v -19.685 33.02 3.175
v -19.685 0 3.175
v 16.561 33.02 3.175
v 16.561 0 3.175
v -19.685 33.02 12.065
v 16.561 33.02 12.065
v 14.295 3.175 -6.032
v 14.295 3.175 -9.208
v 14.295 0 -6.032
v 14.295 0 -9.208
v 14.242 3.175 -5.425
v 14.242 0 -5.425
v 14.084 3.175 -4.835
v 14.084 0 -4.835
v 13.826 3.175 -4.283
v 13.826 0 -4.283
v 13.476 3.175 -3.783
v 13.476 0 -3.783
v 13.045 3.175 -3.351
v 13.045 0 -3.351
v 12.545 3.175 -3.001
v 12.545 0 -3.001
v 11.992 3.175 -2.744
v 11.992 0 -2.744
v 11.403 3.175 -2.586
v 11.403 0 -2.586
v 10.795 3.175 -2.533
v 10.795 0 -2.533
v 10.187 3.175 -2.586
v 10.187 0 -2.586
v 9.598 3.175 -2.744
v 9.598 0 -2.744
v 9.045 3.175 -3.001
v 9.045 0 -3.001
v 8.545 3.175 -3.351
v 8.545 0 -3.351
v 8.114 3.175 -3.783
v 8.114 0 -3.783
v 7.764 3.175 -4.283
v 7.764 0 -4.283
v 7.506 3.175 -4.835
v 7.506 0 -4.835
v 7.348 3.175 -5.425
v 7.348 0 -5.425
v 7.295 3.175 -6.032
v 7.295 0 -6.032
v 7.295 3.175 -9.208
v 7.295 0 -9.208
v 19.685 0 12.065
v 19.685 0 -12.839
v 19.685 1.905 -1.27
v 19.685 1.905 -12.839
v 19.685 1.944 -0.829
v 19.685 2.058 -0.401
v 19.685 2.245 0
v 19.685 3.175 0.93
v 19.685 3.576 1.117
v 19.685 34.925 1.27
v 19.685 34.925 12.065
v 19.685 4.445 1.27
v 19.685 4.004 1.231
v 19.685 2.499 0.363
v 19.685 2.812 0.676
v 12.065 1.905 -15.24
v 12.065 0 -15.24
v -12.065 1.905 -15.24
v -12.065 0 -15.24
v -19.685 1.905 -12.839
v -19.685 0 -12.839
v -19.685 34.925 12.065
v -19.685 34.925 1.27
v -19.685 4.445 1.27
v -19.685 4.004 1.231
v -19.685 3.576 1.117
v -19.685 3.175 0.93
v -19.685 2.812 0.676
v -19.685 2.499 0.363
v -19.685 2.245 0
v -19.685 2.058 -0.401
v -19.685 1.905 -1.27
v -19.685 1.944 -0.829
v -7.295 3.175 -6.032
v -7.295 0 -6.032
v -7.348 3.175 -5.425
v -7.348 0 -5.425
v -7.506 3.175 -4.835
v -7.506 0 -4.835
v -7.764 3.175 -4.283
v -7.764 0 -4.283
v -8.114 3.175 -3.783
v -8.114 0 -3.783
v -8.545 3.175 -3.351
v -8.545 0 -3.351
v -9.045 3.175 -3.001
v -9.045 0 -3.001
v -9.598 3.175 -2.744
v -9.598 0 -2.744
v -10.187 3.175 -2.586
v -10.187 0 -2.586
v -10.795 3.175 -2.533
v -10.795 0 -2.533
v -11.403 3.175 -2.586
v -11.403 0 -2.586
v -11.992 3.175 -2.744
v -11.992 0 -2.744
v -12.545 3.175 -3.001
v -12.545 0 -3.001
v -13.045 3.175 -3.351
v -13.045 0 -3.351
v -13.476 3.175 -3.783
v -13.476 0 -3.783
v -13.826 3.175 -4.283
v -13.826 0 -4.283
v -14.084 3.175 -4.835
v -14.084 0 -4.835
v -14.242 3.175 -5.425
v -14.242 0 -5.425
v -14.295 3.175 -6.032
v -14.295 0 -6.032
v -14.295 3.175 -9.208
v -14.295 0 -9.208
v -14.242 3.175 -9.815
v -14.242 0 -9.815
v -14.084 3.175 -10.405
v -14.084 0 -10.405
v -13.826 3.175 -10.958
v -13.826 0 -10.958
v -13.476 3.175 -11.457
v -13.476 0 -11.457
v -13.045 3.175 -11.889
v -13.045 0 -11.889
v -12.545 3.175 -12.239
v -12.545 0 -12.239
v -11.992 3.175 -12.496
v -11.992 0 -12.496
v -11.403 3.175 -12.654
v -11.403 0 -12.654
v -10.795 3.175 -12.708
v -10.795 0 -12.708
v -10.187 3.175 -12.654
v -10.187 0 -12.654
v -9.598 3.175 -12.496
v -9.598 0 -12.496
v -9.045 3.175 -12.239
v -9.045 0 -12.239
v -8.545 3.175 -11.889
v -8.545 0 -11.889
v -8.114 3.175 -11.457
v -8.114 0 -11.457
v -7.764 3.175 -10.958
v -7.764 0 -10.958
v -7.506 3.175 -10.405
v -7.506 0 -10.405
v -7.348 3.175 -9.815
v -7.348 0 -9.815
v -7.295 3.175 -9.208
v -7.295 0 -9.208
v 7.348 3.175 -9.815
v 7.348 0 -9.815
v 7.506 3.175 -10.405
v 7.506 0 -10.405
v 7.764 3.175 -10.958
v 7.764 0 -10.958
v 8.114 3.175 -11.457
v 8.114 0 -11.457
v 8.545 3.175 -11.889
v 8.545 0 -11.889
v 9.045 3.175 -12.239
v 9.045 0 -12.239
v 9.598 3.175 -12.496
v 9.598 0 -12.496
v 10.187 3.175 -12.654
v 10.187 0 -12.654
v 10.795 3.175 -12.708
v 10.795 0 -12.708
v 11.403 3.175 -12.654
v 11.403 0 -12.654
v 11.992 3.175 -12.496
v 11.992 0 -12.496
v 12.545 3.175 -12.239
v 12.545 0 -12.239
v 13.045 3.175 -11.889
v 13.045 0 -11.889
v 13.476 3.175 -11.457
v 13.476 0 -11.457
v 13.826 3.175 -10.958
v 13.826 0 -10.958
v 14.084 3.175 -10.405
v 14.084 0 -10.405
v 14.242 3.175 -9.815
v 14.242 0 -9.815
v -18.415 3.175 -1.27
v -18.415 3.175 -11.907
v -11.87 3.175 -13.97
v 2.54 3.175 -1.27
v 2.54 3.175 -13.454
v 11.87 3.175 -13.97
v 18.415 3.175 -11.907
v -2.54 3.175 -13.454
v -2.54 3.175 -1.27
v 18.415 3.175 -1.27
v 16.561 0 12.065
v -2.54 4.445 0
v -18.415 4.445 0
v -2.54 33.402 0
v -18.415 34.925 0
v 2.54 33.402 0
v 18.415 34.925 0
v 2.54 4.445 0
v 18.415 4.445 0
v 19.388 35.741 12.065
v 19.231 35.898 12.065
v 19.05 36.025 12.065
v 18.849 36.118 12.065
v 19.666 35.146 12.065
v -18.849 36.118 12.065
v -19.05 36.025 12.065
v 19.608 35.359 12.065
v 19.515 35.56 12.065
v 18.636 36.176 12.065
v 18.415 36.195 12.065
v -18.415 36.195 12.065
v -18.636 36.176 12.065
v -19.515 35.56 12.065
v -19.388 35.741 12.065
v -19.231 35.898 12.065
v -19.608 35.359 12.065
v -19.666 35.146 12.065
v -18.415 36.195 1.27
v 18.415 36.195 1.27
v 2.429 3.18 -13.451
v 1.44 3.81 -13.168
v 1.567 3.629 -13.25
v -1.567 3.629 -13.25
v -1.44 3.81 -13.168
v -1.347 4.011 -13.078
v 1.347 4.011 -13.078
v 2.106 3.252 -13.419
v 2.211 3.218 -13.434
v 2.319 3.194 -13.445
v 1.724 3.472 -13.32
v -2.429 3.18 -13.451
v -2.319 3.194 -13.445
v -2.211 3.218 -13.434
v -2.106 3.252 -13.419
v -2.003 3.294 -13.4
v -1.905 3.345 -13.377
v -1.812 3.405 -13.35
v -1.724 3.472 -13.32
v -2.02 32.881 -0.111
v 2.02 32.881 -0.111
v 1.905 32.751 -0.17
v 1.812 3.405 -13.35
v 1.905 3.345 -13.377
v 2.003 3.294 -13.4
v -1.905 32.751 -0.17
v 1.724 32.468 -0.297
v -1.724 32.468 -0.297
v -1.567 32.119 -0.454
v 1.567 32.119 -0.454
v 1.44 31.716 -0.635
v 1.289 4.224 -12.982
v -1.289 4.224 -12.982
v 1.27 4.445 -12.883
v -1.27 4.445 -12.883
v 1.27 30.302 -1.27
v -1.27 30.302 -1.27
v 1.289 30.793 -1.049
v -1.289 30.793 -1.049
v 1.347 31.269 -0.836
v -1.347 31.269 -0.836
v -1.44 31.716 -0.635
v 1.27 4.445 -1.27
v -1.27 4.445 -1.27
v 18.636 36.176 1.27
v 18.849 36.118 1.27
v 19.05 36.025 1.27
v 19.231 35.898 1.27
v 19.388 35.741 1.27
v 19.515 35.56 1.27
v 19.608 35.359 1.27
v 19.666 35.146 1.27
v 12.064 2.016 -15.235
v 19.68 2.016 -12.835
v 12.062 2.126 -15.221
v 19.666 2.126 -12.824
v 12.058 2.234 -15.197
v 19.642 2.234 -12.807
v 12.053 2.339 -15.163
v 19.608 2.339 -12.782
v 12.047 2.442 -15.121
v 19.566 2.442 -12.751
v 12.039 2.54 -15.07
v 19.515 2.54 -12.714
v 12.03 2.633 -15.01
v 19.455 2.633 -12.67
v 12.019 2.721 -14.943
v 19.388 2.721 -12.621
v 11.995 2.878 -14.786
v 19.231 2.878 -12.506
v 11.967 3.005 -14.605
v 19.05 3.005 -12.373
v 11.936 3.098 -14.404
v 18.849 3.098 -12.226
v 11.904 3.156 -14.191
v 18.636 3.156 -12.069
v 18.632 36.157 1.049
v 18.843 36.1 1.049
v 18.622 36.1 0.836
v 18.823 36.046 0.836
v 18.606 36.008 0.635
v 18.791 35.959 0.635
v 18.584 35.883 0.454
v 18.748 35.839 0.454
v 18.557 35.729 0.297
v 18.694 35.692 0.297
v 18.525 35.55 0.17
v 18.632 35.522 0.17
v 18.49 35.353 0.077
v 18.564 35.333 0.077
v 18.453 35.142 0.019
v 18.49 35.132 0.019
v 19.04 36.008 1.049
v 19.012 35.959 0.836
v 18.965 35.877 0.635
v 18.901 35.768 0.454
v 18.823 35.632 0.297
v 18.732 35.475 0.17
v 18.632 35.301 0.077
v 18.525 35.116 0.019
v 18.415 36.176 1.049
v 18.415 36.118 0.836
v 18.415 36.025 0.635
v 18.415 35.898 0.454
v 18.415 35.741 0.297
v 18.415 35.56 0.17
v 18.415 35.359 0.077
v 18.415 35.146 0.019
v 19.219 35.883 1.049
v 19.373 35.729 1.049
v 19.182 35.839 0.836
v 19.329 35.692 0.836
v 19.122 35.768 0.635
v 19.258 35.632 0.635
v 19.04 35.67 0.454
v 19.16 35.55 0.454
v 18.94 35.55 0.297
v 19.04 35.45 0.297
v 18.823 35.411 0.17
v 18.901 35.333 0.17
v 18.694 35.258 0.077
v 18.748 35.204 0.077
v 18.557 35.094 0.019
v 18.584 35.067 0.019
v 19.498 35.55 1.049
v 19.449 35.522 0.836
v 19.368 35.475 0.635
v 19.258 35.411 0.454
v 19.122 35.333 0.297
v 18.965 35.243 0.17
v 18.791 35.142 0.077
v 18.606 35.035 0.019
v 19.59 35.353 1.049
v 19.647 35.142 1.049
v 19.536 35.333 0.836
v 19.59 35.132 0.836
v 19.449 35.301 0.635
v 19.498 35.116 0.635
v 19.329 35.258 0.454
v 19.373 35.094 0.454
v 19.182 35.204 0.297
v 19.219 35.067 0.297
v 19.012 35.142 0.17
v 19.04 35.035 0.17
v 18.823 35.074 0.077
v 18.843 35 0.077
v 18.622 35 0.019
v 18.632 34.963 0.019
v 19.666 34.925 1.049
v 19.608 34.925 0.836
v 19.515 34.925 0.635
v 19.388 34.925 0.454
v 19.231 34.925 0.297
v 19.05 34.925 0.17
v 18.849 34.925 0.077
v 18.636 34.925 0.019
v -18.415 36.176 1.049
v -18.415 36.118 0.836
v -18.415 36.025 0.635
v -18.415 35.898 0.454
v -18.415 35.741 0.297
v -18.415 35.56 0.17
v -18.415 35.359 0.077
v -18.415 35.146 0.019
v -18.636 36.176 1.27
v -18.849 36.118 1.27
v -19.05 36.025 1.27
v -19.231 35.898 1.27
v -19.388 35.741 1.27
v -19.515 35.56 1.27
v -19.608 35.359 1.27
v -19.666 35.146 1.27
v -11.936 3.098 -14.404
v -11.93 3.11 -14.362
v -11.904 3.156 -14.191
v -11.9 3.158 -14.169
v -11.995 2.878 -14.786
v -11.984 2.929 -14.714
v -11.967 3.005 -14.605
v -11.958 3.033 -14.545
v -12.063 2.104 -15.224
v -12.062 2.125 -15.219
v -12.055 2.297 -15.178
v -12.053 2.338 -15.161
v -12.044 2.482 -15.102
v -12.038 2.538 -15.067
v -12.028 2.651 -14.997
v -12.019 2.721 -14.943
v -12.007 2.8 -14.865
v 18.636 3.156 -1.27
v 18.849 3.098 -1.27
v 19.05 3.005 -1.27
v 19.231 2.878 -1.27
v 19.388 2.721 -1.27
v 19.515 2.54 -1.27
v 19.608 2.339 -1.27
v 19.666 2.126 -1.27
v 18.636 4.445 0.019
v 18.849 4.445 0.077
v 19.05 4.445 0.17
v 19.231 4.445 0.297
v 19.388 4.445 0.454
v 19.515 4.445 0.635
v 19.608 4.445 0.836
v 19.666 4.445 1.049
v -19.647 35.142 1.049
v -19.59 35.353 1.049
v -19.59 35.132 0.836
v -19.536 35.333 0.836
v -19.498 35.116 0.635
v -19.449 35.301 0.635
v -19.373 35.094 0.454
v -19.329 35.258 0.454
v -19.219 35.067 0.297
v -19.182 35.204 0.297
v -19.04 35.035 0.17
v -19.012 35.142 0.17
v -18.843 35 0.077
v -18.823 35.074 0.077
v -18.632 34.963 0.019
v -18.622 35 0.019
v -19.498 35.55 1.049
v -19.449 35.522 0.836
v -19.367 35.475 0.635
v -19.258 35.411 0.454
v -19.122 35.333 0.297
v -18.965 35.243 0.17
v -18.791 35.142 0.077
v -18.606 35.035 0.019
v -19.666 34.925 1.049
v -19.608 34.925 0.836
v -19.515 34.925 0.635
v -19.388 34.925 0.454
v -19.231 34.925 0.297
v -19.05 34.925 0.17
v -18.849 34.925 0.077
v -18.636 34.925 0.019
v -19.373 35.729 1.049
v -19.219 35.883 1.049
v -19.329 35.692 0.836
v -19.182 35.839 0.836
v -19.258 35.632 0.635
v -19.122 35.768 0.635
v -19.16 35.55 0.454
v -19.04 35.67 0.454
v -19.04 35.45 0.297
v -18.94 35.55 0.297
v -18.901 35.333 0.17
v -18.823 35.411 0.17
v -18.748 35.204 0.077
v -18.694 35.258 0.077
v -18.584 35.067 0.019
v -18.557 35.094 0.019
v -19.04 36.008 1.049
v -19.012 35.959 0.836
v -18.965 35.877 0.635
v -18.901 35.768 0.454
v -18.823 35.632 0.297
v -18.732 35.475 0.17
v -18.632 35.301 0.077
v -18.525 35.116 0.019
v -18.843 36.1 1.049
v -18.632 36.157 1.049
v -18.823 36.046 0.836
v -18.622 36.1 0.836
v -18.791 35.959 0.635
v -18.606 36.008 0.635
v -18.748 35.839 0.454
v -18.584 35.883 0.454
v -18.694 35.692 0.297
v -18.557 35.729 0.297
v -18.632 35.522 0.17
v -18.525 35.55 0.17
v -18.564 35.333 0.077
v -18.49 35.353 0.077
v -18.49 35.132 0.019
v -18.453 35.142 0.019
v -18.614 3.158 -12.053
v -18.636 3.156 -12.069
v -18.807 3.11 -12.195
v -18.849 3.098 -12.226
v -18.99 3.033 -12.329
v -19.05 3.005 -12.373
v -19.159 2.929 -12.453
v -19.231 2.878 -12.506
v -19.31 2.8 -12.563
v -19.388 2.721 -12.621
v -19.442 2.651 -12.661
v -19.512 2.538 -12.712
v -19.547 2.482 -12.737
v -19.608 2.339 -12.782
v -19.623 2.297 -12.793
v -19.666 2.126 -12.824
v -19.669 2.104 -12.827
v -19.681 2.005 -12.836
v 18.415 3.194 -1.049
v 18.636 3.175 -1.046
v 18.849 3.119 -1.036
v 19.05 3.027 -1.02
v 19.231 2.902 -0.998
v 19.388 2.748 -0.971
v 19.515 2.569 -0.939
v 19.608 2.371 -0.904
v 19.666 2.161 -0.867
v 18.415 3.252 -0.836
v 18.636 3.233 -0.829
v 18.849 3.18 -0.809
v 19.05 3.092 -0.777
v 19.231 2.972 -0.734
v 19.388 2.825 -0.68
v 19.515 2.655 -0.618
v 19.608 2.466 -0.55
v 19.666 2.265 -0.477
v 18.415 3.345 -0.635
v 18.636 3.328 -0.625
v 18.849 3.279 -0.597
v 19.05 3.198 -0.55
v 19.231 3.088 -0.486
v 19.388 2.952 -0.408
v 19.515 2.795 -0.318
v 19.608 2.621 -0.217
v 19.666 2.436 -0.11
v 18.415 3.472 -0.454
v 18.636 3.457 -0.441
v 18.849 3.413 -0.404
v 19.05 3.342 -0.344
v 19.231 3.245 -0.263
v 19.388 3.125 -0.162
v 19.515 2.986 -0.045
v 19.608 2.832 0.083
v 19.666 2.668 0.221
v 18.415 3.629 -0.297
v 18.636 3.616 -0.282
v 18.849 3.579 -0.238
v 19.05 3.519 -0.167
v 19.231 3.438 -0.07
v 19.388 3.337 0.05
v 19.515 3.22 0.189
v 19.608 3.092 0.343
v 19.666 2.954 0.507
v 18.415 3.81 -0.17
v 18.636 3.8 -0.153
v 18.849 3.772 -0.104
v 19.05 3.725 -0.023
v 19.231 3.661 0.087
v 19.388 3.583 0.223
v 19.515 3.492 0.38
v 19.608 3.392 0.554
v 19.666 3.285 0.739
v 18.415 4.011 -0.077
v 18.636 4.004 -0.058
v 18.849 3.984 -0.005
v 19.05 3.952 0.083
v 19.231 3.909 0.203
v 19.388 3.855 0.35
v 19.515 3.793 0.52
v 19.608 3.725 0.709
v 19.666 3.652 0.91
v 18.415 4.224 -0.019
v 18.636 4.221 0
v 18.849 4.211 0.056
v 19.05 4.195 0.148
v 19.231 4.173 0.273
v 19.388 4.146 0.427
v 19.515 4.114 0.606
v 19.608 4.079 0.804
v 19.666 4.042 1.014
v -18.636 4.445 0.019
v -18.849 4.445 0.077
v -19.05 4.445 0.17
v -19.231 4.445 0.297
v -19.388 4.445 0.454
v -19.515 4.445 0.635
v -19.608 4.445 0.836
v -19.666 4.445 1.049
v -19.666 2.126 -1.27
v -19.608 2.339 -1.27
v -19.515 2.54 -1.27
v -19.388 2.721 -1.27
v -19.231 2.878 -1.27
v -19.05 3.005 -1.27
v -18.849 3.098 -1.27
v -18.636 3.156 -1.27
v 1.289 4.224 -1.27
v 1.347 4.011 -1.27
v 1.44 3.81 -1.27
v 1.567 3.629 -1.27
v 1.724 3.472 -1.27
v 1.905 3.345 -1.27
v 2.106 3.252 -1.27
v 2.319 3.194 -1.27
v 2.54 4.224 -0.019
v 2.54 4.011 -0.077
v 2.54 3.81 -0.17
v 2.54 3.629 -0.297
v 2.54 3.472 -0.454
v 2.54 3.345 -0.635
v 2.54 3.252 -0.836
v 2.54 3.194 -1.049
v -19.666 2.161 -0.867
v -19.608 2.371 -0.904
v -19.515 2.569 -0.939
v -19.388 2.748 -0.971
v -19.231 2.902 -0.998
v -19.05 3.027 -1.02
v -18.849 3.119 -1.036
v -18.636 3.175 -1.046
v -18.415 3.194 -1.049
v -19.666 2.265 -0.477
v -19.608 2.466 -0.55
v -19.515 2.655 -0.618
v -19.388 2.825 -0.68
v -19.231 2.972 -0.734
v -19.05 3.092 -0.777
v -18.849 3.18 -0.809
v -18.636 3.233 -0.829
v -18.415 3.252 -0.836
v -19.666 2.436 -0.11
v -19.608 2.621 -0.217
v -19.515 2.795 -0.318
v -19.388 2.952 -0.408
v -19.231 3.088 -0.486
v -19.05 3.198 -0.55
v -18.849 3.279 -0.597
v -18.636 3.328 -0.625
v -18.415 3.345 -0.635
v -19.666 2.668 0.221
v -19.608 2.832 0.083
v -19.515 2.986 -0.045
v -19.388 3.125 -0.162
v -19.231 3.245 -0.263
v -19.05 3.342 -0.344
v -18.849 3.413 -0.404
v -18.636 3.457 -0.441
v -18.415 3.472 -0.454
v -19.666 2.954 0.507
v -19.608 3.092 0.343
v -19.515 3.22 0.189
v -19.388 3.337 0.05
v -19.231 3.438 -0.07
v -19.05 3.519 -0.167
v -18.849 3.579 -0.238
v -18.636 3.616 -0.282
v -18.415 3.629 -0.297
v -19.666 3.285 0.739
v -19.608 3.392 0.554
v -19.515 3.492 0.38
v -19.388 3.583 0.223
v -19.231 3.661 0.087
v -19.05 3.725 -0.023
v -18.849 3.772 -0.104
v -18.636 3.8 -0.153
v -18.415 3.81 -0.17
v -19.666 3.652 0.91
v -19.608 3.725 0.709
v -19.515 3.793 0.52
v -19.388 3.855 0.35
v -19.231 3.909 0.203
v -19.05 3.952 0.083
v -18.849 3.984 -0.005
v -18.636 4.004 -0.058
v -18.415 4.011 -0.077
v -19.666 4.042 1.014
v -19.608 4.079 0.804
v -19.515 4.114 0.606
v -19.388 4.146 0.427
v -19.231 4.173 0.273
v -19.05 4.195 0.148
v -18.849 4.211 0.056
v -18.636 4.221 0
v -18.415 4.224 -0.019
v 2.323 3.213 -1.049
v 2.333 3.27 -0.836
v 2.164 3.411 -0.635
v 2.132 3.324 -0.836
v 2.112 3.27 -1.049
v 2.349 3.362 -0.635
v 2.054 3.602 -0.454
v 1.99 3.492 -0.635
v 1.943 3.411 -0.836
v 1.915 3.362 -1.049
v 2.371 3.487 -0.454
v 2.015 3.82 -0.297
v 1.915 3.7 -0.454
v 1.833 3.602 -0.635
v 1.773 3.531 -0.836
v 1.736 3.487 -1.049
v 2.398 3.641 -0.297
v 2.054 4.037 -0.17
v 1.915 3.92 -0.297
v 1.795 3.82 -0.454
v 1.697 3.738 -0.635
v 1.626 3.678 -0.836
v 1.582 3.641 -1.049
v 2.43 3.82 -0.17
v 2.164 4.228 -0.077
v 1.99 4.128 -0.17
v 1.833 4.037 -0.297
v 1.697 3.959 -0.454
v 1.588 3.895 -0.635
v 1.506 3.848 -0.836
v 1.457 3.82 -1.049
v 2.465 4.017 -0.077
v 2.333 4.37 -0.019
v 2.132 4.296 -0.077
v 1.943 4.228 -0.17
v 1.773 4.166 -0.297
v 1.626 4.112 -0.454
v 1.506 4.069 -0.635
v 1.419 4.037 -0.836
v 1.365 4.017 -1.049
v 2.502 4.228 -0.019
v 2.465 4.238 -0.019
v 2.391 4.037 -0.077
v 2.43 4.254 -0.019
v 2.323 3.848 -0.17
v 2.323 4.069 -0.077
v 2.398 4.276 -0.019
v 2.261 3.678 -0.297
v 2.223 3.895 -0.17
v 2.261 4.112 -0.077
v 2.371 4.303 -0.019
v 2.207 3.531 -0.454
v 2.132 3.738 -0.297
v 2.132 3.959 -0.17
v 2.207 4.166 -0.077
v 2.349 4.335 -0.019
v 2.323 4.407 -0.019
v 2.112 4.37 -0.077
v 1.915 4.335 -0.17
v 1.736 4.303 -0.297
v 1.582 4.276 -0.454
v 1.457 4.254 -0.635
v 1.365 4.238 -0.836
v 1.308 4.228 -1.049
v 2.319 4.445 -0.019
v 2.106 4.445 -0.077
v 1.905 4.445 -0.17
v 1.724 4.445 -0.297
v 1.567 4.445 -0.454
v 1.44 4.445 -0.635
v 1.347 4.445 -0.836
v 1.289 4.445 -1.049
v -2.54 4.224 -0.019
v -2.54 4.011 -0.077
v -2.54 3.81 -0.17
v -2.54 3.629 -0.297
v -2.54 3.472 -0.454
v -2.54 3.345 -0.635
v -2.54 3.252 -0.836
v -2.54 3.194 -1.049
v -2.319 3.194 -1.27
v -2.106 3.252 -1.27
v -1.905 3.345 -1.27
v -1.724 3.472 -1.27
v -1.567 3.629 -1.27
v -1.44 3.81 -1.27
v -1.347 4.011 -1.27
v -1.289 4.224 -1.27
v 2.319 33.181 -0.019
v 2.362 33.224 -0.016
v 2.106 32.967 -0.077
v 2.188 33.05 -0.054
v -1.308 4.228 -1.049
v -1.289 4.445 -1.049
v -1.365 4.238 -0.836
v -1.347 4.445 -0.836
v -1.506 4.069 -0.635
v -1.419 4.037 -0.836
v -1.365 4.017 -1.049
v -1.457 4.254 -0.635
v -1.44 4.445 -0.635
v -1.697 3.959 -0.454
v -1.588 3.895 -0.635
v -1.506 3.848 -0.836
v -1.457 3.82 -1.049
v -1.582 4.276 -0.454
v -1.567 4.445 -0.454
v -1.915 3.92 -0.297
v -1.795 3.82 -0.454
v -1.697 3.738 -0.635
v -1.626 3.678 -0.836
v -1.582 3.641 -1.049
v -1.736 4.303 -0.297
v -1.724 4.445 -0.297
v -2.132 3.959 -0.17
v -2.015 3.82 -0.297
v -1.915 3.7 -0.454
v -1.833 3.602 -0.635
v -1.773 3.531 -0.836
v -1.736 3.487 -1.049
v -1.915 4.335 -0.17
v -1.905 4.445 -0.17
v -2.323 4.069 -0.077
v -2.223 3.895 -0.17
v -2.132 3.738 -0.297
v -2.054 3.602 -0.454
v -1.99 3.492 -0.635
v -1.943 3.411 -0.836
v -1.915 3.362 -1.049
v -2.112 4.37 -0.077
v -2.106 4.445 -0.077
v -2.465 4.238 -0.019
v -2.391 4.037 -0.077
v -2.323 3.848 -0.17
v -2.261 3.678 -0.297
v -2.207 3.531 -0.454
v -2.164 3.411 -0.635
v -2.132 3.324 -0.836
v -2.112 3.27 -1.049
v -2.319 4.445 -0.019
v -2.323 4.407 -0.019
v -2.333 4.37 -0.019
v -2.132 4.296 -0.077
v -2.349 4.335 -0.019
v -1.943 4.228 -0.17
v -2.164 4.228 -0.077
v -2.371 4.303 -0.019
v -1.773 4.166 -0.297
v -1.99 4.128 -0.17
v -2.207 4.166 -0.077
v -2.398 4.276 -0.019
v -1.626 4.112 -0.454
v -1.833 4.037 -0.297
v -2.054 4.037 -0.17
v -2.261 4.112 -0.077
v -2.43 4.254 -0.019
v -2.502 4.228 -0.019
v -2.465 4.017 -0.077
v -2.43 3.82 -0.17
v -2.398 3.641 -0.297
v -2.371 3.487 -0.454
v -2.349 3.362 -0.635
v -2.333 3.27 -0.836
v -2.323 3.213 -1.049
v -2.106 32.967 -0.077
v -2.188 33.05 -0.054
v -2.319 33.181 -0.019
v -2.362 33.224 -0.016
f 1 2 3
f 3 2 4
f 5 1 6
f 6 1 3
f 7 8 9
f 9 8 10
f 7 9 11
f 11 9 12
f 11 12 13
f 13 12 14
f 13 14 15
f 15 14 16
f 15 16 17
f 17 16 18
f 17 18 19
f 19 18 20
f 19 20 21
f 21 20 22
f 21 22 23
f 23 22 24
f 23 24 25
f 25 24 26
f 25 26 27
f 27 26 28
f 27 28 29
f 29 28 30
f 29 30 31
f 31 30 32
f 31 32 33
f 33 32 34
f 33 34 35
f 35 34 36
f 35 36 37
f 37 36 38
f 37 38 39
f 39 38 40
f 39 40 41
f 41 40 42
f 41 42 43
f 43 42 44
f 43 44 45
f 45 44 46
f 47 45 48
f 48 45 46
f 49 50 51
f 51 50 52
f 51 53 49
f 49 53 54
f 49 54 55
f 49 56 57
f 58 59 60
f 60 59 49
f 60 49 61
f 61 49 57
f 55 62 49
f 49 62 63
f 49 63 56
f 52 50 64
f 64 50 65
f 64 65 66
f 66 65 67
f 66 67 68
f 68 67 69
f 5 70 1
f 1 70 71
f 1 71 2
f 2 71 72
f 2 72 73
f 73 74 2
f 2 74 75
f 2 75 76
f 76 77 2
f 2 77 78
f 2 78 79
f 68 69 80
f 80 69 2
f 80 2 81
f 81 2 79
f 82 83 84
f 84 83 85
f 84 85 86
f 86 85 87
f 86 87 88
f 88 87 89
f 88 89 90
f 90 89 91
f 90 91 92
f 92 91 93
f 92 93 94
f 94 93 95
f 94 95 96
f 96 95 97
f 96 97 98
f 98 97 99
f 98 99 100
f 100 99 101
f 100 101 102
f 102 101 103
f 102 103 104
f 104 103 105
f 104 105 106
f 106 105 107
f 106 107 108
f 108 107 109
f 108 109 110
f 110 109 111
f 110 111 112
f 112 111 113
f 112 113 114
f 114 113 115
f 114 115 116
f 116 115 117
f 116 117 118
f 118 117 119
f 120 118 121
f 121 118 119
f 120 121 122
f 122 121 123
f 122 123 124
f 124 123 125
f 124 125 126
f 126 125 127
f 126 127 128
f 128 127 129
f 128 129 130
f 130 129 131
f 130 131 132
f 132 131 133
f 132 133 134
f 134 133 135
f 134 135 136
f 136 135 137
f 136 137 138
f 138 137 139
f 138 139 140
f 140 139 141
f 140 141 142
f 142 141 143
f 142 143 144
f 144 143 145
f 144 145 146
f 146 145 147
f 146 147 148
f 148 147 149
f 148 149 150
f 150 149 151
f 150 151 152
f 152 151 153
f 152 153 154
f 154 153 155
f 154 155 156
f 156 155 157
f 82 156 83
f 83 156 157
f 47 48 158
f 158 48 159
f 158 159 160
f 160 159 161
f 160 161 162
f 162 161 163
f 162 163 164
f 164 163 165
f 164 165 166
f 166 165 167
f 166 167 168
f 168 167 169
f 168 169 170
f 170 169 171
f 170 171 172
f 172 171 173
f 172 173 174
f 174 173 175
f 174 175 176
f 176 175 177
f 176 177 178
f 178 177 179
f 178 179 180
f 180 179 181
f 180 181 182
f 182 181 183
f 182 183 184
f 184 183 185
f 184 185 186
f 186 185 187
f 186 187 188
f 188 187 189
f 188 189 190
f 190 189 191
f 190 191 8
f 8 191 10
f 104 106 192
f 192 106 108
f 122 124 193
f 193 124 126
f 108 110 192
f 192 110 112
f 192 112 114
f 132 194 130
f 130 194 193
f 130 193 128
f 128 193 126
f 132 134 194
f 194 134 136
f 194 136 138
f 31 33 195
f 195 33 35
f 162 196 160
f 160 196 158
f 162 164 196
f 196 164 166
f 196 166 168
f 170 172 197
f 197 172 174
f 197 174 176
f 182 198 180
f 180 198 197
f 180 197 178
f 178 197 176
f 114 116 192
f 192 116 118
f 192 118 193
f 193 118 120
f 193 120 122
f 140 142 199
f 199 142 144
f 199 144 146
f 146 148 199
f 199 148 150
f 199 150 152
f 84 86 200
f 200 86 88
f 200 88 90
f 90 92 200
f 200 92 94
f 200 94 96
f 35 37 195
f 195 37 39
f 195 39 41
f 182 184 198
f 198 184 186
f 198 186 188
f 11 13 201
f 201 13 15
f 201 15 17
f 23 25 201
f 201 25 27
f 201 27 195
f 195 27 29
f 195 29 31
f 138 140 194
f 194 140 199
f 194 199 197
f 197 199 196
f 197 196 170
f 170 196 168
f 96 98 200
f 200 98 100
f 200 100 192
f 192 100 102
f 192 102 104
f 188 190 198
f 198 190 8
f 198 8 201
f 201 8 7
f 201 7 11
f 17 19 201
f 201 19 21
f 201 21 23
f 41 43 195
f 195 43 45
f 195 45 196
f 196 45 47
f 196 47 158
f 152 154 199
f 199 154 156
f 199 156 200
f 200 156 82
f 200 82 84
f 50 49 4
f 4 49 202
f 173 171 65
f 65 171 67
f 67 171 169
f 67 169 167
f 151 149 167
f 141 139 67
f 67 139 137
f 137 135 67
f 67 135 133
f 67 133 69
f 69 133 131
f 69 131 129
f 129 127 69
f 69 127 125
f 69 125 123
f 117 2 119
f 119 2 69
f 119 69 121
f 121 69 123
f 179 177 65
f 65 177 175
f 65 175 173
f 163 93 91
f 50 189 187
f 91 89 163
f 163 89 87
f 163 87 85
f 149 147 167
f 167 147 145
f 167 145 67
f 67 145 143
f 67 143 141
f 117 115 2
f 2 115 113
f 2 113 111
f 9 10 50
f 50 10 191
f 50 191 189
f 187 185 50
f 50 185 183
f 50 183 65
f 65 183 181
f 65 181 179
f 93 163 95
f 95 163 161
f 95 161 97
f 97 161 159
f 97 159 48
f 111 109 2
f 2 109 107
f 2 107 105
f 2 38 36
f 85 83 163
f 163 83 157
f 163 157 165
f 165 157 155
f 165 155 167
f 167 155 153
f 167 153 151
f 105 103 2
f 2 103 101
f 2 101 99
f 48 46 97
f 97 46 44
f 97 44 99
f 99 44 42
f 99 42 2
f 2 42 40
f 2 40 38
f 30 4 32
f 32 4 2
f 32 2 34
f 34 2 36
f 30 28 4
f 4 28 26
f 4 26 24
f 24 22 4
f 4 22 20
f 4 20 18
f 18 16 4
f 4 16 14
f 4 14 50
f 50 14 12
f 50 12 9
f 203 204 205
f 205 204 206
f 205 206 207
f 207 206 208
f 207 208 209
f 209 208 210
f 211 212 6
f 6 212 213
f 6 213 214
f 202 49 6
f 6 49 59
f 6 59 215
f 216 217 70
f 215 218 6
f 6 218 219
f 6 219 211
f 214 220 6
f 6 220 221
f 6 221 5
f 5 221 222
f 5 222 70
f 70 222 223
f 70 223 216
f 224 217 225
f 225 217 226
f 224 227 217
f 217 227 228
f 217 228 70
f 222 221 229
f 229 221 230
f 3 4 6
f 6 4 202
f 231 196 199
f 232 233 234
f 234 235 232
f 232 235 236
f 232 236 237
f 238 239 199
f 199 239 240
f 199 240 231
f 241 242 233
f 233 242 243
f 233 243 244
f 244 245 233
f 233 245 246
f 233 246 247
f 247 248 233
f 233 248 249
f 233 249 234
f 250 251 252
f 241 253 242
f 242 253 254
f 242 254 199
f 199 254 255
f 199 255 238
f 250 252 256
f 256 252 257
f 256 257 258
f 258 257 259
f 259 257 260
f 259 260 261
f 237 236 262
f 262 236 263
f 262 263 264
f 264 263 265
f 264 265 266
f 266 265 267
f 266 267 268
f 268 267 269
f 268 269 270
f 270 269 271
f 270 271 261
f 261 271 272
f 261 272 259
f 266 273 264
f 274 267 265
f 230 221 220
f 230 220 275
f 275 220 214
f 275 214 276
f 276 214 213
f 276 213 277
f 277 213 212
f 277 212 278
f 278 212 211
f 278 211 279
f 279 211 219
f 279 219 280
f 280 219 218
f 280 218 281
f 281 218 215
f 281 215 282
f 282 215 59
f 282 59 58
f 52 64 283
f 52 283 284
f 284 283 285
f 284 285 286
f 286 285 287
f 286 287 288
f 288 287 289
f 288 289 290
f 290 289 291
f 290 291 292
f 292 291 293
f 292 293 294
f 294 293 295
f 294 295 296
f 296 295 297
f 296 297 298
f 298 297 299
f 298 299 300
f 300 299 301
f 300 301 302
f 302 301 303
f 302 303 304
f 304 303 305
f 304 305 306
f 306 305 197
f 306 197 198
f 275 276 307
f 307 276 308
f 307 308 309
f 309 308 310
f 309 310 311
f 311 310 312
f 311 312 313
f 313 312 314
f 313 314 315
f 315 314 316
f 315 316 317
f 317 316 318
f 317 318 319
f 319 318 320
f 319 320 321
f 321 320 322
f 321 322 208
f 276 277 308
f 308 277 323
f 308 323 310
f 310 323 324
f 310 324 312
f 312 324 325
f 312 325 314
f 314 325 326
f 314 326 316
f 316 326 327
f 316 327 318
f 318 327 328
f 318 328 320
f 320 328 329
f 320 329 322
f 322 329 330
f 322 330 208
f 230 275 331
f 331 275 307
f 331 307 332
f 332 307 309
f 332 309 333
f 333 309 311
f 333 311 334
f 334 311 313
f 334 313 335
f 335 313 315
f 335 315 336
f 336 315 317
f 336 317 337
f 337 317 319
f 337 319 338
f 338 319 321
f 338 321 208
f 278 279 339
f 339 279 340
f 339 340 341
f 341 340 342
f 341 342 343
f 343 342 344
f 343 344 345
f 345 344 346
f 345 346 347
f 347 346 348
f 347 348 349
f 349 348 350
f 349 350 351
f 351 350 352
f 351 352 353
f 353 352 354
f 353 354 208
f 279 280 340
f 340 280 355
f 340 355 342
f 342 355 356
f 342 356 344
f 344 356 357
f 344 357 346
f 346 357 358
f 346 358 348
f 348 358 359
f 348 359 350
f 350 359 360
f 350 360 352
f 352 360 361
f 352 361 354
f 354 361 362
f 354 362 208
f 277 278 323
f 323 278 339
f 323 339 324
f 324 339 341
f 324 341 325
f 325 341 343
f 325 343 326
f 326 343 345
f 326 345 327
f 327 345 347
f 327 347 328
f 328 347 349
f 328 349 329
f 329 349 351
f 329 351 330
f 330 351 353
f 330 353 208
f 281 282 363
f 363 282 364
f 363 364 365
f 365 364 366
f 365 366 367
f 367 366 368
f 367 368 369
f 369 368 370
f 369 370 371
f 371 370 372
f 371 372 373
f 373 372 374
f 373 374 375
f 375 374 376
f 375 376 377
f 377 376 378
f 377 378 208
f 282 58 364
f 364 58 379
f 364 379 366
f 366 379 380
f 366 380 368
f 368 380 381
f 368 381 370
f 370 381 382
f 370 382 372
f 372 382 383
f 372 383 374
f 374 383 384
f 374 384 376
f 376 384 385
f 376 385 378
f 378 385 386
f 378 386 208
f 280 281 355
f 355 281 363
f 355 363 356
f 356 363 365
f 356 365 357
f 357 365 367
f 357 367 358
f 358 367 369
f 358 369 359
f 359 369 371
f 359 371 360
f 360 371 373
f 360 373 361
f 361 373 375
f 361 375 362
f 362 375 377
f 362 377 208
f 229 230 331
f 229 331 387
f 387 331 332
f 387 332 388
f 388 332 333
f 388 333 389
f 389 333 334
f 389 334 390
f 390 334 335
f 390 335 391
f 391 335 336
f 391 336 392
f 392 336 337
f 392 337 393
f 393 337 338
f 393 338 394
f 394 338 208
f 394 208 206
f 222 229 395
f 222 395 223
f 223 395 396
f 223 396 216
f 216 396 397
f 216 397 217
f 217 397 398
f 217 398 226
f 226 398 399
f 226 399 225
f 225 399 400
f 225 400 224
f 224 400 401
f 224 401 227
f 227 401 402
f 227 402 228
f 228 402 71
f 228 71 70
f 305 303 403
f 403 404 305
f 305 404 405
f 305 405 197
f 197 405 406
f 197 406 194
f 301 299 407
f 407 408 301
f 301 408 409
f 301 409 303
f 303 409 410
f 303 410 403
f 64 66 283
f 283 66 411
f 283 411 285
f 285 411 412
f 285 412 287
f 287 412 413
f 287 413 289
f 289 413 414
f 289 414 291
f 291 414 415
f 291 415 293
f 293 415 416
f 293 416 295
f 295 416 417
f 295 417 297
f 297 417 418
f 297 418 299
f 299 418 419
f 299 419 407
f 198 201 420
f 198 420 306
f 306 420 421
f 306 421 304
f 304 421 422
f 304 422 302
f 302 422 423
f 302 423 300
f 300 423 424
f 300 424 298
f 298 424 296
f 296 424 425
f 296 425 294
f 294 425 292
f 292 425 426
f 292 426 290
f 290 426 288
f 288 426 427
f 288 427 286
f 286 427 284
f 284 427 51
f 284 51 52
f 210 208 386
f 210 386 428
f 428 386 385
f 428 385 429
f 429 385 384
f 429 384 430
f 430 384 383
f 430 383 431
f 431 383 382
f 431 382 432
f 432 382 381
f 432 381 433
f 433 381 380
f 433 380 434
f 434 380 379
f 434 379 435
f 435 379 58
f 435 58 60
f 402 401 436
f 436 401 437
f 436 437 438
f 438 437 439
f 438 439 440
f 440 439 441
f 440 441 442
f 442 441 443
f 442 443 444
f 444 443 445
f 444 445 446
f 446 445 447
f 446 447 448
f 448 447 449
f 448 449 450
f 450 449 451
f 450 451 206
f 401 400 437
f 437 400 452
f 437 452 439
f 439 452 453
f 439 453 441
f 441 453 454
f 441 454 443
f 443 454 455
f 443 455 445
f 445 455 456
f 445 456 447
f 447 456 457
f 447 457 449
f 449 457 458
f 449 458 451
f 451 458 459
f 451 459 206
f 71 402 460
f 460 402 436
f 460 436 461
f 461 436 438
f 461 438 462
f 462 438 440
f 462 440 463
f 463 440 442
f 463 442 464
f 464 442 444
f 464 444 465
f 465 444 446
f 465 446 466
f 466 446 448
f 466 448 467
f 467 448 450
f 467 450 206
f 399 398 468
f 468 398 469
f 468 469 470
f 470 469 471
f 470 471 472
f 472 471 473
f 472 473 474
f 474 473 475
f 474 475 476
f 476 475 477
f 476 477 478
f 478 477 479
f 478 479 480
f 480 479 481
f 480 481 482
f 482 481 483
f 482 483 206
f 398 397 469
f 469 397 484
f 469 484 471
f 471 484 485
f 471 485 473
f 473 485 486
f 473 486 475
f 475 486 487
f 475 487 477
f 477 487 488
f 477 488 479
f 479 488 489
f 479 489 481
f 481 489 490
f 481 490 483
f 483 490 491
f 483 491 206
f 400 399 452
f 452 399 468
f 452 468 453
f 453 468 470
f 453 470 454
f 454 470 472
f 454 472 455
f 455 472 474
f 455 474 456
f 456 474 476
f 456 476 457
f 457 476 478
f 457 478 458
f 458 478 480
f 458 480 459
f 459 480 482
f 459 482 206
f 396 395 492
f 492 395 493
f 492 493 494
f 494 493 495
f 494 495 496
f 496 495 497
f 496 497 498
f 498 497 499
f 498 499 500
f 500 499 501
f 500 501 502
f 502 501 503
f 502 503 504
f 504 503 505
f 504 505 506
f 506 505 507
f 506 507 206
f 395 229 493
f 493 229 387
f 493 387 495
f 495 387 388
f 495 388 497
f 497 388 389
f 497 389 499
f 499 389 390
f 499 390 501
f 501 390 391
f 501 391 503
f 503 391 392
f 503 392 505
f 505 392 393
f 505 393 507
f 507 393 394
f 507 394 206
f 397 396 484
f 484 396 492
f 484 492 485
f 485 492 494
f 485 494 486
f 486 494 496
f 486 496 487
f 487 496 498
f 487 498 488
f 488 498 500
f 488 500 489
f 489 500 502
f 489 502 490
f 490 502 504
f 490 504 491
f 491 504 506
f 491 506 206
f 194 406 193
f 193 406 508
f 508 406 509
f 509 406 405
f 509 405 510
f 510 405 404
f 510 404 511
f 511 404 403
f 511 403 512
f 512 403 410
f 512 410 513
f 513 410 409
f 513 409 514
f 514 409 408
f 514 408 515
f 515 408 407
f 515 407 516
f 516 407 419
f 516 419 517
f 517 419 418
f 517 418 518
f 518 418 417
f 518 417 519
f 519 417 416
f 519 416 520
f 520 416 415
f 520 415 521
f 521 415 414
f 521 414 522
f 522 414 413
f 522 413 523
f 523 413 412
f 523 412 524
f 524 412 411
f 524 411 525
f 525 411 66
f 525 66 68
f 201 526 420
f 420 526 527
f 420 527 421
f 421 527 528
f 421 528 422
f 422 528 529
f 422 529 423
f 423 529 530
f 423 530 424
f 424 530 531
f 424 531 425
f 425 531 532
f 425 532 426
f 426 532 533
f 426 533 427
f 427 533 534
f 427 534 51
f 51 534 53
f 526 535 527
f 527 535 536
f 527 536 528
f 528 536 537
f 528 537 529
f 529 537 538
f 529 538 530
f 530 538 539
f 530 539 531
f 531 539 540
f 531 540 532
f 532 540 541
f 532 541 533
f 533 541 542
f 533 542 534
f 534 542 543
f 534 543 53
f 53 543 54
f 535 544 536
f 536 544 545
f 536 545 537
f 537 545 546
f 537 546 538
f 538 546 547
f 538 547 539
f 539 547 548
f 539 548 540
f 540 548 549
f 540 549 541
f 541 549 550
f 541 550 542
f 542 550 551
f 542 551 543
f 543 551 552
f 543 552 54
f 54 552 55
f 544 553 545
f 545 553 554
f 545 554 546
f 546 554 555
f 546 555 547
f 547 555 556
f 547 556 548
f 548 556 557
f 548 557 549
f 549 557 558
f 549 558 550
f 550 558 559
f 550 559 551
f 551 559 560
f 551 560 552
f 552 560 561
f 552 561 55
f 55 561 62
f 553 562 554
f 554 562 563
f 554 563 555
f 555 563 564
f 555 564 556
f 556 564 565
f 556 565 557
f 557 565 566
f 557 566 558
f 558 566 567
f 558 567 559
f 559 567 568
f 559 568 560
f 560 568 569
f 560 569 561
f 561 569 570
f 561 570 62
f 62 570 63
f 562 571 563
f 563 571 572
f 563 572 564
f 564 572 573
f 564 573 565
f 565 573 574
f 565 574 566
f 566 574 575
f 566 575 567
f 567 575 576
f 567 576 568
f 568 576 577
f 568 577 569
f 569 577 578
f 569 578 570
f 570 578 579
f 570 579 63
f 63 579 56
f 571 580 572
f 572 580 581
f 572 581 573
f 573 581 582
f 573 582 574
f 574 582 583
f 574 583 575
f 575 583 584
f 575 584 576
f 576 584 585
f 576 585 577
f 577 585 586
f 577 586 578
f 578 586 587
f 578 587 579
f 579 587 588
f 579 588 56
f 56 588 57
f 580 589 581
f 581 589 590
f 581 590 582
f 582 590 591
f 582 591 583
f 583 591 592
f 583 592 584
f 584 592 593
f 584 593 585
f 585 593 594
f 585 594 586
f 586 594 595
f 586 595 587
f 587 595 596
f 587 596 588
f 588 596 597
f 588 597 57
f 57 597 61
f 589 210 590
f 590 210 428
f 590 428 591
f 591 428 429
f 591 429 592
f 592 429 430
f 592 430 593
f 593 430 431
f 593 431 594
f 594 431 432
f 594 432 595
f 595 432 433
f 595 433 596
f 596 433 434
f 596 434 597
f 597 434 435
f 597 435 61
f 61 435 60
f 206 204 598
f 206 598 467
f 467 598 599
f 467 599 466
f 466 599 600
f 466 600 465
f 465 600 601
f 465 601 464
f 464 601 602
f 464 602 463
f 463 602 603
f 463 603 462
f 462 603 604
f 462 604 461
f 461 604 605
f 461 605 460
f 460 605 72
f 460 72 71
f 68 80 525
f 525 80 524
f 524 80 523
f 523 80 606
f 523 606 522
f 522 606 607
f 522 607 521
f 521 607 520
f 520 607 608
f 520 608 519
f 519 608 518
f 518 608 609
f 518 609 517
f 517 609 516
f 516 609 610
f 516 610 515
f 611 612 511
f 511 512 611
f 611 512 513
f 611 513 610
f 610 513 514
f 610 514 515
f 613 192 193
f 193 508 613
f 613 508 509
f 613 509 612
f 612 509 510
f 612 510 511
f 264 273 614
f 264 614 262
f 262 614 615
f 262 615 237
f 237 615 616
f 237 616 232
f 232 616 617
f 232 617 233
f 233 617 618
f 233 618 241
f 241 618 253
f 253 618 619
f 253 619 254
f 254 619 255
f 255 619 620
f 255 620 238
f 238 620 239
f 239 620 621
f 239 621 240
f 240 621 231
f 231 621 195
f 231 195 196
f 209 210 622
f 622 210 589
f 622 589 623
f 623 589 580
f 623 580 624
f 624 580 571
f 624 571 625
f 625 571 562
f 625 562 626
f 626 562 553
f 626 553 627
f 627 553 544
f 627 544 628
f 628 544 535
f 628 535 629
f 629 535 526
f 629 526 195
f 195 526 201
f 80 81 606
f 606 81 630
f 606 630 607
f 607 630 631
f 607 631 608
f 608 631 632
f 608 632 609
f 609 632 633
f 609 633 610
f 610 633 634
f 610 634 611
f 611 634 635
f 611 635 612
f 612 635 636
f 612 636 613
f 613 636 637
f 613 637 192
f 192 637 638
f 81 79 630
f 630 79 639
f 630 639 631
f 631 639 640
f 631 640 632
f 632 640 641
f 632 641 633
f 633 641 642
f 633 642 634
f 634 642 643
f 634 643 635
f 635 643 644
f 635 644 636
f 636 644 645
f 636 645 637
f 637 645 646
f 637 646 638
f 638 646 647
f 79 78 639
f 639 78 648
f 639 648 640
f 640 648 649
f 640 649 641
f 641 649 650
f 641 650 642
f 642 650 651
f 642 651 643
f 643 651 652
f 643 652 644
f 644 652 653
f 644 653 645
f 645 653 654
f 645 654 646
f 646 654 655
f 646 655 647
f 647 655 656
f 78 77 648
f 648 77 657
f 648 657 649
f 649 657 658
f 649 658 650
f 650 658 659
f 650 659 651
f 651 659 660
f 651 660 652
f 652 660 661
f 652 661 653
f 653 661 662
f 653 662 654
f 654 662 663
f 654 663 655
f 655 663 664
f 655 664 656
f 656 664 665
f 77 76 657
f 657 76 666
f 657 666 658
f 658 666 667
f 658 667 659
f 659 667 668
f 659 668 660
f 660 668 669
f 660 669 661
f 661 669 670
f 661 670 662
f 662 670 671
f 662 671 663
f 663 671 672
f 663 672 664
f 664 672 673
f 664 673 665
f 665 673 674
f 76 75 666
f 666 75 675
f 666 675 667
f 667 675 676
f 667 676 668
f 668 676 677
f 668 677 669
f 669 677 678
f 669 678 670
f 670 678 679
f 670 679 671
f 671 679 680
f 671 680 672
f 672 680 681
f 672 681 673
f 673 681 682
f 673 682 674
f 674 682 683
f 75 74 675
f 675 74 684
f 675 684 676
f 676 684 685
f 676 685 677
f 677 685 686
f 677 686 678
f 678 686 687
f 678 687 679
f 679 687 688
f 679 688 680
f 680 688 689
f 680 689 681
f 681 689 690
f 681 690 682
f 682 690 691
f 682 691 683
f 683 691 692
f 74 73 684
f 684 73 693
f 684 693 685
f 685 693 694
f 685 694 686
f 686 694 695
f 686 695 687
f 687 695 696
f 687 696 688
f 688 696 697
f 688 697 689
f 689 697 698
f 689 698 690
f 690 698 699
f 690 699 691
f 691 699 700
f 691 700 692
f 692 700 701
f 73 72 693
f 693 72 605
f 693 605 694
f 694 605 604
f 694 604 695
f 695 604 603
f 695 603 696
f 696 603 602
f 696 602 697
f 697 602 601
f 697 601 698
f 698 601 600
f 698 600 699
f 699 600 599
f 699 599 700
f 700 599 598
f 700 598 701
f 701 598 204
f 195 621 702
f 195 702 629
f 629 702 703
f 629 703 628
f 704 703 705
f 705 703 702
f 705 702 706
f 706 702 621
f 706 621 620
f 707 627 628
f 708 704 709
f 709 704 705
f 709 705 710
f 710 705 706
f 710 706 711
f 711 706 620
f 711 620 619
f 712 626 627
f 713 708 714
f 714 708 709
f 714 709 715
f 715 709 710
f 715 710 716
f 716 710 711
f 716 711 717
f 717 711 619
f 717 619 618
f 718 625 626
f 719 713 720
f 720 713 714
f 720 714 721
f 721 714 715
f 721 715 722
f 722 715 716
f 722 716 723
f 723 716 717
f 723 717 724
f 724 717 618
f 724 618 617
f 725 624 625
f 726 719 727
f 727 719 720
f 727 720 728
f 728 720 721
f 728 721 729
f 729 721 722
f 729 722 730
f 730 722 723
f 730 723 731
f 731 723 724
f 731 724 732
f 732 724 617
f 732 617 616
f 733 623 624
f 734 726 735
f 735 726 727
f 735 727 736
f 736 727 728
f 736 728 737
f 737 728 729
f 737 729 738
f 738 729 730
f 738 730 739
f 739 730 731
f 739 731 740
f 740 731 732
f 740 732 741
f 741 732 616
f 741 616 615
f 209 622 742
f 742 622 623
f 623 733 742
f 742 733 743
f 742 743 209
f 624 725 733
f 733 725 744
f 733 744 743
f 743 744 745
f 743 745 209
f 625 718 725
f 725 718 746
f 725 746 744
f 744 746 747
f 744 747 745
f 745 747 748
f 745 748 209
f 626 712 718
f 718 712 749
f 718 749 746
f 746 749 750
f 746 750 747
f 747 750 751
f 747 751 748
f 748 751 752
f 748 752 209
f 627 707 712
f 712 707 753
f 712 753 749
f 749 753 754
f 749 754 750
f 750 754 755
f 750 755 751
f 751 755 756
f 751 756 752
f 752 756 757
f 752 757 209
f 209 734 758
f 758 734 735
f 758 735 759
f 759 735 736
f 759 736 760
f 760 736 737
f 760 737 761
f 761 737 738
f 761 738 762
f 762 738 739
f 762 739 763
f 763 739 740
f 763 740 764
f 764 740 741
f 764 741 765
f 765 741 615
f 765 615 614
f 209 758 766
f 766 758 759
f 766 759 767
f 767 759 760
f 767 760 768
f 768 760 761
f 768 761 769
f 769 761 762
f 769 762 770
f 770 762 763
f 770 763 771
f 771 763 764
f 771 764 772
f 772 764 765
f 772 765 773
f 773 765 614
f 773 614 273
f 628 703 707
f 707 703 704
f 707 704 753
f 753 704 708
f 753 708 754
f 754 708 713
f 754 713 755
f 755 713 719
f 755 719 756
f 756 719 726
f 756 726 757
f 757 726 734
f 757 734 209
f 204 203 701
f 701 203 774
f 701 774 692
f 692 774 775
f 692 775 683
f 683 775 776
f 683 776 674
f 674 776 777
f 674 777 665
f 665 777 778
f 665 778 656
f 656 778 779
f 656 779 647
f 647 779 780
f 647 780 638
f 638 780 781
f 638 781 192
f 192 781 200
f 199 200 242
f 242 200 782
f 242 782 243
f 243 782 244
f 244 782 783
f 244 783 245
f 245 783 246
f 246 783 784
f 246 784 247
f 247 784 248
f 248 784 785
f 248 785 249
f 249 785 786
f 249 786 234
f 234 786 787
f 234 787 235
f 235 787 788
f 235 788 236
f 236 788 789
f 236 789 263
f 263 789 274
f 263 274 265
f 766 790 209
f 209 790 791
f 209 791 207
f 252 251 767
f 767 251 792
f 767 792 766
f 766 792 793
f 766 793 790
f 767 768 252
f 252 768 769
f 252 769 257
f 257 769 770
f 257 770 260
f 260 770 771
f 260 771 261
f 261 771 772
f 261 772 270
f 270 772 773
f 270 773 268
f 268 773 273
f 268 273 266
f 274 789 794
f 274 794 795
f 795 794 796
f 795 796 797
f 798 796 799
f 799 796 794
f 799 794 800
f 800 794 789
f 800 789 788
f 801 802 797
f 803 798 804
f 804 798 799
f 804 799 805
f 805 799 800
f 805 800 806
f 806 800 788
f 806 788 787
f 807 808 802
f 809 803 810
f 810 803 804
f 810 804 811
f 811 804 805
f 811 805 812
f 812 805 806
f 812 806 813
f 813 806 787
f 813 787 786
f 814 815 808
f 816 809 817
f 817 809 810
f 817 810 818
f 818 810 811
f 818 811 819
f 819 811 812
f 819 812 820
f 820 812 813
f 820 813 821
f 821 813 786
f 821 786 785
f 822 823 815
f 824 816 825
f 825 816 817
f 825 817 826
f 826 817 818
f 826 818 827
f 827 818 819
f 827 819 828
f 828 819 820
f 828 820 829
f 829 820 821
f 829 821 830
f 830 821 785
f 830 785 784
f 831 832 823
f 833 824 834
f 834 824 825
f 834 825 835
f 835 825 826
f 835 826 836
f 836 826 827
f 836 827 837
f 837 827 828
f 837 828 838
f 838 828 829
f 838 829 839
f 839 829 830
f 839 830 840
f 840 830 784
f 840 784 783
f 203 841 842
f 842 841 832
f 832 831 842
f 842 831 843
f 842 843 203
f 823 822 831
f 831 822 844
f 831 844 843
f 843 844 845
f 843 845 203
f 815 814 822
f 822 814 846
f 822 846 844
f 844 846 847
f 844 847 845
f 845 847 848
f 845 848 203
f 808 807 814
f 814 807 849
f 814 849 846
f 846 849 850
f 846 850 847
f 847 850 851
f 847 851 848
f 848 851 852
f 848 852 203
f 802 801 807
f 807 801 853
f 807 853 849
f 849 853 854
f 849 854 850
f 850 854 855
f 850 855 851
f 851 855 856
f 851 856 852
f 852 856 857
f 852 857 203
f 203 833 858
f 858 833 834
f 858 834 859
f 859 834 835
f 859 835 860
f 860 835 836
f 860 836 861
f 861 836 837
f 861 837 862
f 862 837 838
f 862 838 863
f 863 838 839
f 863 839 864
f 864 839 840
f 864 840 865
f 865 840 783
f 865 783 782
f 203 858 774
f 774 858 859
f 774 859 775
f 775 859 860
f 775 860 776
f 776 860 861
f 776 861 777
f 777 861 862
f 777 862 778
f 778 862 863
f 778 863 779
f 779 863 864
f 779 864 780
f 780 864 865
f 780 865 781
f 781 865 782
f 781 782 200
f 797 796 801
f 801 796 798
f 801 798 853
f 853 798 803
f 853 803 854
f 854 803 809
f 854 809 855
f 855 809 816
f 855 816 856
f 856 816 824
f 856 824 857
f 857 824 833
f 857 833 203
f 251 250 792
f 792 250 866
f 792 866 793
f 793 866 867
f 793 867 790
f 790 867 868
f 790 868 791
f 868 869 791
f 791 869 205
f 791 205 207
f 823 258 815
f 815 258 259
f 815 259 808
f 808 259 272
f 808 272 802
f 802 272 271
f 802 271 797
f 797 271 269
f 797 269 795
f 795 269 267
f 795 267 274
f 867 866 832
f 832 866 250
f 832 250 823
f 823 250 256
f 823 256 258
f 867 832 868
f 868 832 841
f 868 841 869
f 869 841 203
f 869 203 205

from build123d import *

# Parameters (mm, degrees)
BOSS_EXTRUDE1_DEPTH = 3.175
SKETCH2_W           = 39.37
SKETCH2_H           = 3.175
BOSS_EXTRUDE2_DEPTH = 33.02
SKETCH3_W           = 39.37
SKETCH3_H           = 8.89
SKETCH3_H_2         = 3.175
BOSS_EXTRUDE3_DEPTH = 3.175
SKETCH4_W           = 8.89
SKETCH4_H           = 33.02
BOSS_EXTRUDE4_DEPTH = 3.1242
RIB1_REACH          = 45.93
SKETCH6_WALL_W      = 122.696858414
SKETCH6_WALL_H      = 2.54
FILLET1_R           = 1.27


with BuildPart() as part:
    # Sketch1 → Boss-Extrude1 (new body)
    with BuildSketch(Plane(origin=(0, 0, 0), x_dir=(1, 0, 0), z_dir=(0, 1, 0))):
        Polygon((-12.065, 15.24), (-19.685, 12.838646177), (-19.685, 0), (19.685, 0), (19.685, 12.838646177), (12.065, 15.24), align=None)
        with BuildLine():
            ThreePointArc((-14.295, 9.2075), (-10.795, 12.7075), (-7.295, 9.2075))
            Line((-7.295, 9.2075), (-7.295, 6.0325))
            ThreePointArc((-7.295, 6.0325), (-10.795, 2.5325), (-14.295, 6.0325))
            Line((-14.295, 6.0325), (-14.295, 9.2075))
        make_face(mode=Mode.SUBTRACT)
        with BuildLine():
            Line((7.295, 6.0325), (7.295, 9.2075))
            ThreePointArc((7.295, 9.2075), (10.795, 12.7075), (14.295, 9.2075))
            Line((14.295, 9.2075), (14.295, 6.0325))
            ThreePointArc((14.295, 6.0325), (10.795, 2.5325), (7.295, 6.0325))
        make_face(mode=Mode.SUBTRACT)
    extrude(amount=BOSS_EXTRUDE1_DEPTH)

    # Sketch2 → Boss-Extrude2 (add)
    with BuildSketch(Plane(origin=(0, 0, 0), x_dir=(1, 0, 0), z_dir=(0, 1, 0))):
        with Locations((0, -1.5875)):
            Rectangle(SKETCH2_W, SKETCH2_H)
    extrude(amount=BOSS_EXTRUDE2_DEPTH)

    # Sketch3 → Boss-Extrude3 (add)
    with BuildSketch(Plane(origin=(0, 33.02, 0), x_dir=(1, 0, 0), z_dir=(0, 1, 0))):
        with Locations((0, -7.62)):
            Rectangle(SKETCH3_W, SKETCH3_H)
        with Locations((0, -1.5875)):
            Rectangle(SKETCH3_W, SKETCH3_H_2)
    extrude(amount=BOSS_EXTRUDE3_DEPTH)

    # Sketch4 → Boss-Extrude4 (add)
    with BuildSketch(Plane(origin=(19.685, 0, 0), x_dir=(0, 0, -1), z_dir=(1, 0, 0))):
        with Locations((-7.62, 16.51)):
            Rectangle(SKETCH4_W, SKETCH4_H)
    extrude(amount=-BOSS_EXTRUDE4_DEPTH)

    # Sketch6 wall → Rib1 (add, up to next)
    with BuildSketch(Plane(origin=(0, 18.152288456, -6.726767741), x_dir=(0, -0.912217845065, -0.409705507828), z_dir=(0, 0.409705507828, -0.912217845065)), mode=Mode.PRIVATE) as rib1_sk1:
        Rectangle(SKETCH6_WALL_W, SKETCH6_WALL_H)
    rib1_tool1 = extrude(rib1_sk1.sketch, amount=-RIB1_REACH, mode=Mode.PRIVATE) - part.part
    add(rib1_tool1.solids().sort_by_distance((0, 18.152288456, -6.726767741))[0])

    # Fillet1
    fillet1_edges = [part.edges().sort_by_distance(p)[0] for p in [
        (-1.27, 3.175, -6.726767741),
        (1.27, 3.175, -6.726767741),
        (-1.27, 18.152288456, 0),
        (19.685, 3.175, -6.419323088),
        (15.875, 3.175, -14.039323088),
        (0, 3.175, -15.24),
        (-15.875, 3.175, -14.039323088),
        (-19.685, 3.175, -6.419323088),
        (-10.4775, 3.175, 0),
        (-19.685, 19.685, 0),
        (19.685, 19.685, 0),
        (19.685, 36.195, 6.0325),
        (0, 36.195, 0),
        (-19.685, 36.195, 6.0325),
        (10.4775, 3.175, 0),
        (0, 33.129576912, 0),
        (1.27, 18.152288456, 0),
    ]]
    fillet(fillet1_edges, radius=FILLET1_R)


solid = part.part
